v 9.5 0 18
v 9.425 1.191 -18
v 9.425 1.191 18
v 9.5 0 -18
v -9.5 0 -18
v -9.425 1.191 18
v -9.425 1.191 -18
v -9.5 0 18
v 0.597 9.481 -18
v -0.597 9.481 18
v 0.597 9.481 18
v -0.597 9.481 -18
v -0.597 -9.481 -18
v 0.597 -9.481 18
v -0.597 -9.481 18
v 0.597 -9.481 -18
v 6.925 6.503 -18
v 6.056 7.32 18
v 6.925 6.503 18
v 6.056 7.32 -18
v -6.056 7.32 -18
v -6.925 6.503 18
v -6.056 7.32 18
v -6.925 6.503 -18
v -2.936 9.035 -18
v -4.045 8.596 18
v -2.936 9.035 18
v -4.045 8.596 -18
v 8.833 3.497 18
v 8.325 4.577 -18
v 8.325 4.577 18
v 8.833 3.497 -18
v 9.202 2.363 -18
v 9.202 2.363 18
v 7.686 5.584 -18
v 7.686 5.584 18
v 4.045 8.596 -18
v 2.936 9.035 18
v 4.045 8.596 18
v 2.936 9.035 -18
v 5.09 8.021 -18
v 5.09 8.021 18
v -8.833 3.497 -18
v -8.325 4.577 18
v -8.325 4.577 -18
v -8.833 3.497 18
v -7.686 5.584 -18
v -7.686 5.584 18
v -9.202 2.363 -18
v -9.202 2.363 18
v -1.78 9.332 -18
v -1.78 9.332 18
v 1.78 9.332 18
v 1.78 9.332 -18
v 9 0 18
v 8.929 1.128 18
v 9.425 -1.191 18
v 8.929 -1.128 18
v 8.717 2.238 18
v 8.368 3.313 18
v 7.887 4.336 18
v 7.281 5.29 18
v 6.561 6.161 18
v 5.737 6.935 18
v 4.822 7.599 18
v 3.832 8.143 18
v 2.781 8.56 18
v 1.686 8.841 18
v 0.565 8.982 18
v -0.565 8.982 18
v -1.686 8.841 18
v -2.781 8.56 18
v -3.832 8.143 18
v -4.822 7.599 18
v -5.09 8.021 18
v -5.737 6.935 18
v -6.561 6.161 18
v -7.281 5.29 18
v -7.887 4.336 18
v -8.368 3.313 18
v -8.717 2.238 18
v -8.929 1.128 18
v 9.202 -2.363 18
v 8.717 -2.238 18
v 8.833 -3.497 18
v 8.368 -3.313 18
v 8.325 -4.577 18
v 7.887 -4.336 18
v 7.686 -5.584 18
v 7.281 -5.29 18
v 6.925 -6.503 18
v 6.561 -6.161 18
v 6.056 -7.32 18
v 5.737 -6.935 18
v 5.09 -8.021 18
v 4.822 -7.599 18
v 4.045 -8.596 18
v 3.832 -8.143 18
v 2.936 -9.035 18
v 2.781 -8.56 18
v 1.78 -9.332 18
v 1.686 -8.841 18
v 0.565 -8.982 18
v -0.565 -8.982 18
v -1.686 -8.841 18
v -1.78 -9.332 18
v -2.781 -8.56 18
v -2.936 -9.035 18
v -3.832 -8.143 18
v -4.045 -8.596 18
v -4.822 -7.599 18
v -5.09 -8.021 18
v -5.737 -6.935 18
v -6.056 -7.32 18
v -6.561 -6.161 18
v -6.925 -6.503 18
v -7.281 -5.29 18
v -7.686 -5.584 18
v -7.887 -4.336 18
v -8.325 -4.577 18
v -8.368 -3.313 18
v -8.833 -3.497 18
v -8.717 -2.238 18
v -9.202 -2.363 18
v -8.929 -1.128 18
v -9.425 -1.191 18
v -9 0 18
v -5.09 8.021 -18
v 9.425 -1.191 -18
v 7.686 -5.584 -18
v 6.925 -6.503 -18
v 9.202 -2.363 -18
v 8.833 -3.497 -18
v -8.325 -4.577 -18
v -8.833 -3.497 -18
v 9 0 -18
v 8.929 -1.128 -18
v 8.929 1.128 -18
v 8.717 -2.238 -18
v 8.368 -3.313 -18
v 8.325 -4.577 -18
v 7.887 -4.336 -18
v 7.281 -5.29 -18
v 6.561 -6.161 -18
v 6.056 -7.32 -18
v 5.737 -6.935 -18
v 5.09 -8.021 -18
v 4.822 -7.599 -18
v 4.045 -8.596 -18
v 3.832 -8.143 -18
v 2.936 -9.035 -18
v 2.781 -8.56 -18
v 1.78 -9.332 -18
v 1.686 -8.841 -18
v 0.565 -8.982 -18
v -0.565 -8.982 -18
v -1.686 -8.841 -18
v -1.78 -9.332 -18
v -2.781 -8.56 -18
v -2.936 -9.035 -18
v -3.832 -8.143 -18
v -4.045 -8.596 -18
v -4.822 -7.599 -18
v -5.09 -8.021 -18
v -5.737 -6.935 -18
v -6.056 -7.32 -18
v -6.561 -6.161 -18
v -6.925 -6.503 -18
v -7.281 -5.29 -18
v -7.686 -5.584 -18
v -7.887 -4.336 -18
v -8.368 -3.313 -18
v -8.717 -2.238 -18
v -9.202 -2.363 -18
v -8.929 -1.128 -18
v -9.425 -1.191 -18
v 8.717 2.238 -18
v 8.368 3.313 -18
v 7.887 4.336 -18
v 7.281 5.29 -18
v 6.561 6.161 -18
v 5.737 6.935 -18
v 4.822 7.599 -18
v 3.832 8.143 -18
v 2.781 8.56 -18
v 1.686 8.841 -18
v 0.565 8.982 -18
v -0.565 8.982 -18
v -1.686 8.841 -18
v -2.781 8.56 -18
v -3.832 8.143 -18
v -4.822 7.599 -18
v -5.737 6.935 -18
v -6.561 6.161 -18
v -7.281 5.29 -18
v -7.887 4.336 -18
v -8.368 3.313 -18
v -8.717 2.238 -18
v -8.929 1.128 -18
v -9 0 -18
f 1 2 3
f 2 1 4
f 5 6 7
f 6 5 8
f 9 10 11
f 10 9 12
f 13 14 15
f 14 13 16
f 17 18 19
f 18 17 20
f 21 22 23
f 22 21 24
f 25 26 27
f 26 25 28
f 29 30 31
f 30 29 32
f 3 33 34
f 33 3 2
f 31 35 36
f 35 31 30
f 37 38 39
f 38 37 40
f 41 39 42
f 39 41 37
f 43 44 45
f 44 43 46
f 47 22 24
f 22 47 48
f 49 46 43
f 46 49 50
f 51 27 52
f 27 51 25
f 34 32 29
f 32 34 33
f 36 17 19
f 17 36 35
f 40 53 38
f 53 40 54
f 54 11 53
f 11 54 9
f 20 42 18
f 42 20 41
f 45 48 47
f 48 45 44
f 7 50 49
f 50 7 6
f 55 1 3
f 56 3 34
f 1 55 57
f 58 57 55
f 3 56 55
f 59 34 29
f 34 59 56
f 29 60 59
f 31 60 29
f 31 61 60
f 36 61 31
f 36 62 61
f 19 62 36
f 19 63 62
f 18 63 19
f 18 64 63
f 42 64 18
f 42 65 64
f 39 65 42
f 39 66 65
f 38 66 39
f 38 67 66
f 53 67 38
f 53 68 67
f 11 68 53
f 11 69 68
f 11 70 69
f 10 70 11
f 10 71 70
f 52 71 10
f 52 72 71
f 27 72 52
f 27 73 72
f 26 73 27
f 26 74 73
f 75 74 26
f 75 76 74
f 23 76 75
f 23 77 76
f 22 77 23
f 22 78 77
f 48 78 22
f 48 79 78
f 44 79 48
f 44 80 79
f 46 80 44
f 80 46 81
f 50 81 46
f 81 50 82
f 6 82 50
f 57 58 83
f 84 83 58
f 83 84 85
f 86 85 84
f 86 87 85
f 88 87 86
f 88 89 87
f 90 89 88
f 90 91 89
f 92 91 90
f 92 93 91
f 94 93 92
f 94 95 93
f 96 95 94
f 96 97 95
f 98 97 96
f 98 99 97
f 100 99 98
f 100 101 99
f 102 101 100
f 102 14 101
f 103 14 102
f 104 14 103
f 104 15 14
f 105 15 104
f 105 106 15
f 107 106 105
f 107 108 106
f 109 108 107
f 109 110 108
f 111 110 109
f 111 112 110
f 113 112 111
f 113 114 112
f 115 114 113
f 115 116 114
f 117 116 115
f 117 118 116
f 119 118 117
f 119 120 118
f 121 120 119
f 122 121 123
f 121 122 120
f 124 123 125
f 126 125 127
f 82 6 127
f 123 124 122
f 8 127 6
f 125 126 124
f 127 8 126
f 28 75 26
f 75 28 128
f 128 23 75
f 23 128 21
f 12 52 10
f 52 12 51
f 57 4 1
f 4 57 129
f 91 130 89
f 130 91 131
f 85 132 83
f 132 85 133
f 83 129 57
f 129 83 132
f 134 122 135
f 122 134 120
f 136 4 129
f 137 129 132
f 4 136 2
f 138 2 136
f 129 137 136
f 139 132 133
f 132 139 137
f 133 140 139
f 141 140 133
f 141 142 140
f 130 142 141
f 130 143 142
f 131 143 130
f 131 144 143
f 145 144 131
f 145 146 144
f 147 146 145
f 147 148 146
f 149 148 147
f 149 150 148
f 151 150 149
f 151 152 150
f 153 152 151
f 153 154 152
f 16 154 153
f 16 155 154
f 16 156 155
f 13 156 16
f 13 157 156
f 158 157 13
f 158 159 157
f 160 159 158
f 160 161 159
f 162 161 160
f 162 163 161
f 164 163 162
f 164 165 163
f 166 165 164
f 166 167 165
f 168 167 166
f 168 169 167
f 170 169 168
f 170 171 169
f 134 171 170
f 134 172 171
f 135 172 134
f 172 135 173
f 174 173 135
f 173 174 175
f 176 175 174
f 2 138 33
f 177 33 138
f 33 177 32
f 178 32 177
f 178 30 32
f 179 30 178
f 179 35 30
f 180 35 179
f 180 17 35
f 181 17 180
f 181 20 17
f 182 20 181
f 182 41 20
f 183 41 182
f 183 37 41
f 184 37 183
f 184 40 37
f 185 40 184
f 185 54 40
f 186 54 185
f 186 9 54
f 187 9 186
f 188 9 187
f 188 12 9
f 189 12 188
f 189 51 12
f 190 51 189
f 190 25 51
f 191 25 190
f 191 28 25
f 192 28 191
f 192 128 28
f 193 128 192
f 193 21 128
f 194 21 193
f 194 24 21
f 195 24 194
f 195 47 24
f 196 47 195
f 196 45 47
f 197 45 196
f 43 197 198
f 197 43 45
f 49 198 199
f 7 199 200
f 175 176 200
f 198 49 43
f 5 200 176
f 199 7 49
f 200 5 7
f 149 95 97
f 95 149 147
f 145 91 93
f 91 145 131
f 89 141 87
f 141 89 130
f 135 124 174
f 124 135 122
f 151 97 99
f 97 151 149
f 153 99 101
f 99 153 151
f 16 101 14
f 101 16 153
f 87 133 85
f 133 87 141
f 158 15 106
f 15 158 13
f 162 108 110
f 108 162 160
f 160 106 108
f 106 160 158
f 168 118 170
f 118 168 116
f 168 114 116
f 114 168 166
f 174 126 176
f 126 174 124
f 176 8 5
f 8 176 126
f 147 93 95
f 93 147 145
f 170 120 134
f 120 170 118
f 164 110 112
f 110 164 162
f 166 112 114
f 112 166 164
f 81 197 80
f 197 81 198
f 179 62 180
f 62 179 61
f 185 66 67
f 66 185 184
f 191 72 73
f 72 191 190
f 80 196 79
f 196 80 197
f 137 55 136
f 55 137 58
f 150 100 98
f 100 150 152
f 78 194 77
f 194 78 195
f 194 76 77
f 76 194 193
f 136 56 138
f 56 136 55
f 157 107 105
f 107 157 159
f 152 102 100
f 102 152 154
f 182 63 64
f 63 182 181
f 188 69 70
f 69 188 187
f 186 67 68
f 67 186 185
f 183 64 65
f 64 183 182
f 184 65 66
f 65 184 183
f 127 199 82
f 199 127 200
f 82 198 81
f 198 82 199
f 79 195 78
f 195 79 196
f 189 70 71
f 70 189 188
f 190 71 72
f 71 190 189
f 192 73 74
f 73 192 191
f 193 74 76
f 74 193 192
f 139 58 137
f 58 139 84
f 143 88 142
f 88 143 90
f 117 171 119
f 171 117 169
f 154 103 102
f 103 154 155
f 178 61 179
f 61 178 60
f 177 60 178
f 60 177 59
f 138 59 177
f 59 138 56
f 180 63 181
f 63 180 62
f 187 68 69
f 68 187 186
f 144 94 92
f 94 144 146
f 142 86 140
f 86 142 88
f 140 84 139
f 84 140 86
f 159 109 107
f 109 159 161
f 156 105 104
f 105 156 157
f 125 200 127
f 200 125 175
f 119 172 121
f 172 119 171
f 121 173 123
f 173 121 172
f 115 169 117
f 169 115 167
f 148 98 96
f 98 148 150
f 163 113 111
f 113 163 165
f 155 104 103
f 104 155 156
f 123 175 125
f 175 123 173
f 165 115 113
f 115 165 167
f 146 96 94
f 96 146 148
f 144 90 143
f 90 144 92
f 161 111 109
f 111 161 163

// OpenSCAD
$fn = 50;


difference() {
	union() {
		translate(v = [0, 0, -18.0000000000]) {
			cylinder(h = 36, r = 9.5000000000);
		}
	}
	union() {
		translate(v = [0, 0, -100.0000000000]) {
			cylinder(h = 200, r = 9);
		}
	}
}
